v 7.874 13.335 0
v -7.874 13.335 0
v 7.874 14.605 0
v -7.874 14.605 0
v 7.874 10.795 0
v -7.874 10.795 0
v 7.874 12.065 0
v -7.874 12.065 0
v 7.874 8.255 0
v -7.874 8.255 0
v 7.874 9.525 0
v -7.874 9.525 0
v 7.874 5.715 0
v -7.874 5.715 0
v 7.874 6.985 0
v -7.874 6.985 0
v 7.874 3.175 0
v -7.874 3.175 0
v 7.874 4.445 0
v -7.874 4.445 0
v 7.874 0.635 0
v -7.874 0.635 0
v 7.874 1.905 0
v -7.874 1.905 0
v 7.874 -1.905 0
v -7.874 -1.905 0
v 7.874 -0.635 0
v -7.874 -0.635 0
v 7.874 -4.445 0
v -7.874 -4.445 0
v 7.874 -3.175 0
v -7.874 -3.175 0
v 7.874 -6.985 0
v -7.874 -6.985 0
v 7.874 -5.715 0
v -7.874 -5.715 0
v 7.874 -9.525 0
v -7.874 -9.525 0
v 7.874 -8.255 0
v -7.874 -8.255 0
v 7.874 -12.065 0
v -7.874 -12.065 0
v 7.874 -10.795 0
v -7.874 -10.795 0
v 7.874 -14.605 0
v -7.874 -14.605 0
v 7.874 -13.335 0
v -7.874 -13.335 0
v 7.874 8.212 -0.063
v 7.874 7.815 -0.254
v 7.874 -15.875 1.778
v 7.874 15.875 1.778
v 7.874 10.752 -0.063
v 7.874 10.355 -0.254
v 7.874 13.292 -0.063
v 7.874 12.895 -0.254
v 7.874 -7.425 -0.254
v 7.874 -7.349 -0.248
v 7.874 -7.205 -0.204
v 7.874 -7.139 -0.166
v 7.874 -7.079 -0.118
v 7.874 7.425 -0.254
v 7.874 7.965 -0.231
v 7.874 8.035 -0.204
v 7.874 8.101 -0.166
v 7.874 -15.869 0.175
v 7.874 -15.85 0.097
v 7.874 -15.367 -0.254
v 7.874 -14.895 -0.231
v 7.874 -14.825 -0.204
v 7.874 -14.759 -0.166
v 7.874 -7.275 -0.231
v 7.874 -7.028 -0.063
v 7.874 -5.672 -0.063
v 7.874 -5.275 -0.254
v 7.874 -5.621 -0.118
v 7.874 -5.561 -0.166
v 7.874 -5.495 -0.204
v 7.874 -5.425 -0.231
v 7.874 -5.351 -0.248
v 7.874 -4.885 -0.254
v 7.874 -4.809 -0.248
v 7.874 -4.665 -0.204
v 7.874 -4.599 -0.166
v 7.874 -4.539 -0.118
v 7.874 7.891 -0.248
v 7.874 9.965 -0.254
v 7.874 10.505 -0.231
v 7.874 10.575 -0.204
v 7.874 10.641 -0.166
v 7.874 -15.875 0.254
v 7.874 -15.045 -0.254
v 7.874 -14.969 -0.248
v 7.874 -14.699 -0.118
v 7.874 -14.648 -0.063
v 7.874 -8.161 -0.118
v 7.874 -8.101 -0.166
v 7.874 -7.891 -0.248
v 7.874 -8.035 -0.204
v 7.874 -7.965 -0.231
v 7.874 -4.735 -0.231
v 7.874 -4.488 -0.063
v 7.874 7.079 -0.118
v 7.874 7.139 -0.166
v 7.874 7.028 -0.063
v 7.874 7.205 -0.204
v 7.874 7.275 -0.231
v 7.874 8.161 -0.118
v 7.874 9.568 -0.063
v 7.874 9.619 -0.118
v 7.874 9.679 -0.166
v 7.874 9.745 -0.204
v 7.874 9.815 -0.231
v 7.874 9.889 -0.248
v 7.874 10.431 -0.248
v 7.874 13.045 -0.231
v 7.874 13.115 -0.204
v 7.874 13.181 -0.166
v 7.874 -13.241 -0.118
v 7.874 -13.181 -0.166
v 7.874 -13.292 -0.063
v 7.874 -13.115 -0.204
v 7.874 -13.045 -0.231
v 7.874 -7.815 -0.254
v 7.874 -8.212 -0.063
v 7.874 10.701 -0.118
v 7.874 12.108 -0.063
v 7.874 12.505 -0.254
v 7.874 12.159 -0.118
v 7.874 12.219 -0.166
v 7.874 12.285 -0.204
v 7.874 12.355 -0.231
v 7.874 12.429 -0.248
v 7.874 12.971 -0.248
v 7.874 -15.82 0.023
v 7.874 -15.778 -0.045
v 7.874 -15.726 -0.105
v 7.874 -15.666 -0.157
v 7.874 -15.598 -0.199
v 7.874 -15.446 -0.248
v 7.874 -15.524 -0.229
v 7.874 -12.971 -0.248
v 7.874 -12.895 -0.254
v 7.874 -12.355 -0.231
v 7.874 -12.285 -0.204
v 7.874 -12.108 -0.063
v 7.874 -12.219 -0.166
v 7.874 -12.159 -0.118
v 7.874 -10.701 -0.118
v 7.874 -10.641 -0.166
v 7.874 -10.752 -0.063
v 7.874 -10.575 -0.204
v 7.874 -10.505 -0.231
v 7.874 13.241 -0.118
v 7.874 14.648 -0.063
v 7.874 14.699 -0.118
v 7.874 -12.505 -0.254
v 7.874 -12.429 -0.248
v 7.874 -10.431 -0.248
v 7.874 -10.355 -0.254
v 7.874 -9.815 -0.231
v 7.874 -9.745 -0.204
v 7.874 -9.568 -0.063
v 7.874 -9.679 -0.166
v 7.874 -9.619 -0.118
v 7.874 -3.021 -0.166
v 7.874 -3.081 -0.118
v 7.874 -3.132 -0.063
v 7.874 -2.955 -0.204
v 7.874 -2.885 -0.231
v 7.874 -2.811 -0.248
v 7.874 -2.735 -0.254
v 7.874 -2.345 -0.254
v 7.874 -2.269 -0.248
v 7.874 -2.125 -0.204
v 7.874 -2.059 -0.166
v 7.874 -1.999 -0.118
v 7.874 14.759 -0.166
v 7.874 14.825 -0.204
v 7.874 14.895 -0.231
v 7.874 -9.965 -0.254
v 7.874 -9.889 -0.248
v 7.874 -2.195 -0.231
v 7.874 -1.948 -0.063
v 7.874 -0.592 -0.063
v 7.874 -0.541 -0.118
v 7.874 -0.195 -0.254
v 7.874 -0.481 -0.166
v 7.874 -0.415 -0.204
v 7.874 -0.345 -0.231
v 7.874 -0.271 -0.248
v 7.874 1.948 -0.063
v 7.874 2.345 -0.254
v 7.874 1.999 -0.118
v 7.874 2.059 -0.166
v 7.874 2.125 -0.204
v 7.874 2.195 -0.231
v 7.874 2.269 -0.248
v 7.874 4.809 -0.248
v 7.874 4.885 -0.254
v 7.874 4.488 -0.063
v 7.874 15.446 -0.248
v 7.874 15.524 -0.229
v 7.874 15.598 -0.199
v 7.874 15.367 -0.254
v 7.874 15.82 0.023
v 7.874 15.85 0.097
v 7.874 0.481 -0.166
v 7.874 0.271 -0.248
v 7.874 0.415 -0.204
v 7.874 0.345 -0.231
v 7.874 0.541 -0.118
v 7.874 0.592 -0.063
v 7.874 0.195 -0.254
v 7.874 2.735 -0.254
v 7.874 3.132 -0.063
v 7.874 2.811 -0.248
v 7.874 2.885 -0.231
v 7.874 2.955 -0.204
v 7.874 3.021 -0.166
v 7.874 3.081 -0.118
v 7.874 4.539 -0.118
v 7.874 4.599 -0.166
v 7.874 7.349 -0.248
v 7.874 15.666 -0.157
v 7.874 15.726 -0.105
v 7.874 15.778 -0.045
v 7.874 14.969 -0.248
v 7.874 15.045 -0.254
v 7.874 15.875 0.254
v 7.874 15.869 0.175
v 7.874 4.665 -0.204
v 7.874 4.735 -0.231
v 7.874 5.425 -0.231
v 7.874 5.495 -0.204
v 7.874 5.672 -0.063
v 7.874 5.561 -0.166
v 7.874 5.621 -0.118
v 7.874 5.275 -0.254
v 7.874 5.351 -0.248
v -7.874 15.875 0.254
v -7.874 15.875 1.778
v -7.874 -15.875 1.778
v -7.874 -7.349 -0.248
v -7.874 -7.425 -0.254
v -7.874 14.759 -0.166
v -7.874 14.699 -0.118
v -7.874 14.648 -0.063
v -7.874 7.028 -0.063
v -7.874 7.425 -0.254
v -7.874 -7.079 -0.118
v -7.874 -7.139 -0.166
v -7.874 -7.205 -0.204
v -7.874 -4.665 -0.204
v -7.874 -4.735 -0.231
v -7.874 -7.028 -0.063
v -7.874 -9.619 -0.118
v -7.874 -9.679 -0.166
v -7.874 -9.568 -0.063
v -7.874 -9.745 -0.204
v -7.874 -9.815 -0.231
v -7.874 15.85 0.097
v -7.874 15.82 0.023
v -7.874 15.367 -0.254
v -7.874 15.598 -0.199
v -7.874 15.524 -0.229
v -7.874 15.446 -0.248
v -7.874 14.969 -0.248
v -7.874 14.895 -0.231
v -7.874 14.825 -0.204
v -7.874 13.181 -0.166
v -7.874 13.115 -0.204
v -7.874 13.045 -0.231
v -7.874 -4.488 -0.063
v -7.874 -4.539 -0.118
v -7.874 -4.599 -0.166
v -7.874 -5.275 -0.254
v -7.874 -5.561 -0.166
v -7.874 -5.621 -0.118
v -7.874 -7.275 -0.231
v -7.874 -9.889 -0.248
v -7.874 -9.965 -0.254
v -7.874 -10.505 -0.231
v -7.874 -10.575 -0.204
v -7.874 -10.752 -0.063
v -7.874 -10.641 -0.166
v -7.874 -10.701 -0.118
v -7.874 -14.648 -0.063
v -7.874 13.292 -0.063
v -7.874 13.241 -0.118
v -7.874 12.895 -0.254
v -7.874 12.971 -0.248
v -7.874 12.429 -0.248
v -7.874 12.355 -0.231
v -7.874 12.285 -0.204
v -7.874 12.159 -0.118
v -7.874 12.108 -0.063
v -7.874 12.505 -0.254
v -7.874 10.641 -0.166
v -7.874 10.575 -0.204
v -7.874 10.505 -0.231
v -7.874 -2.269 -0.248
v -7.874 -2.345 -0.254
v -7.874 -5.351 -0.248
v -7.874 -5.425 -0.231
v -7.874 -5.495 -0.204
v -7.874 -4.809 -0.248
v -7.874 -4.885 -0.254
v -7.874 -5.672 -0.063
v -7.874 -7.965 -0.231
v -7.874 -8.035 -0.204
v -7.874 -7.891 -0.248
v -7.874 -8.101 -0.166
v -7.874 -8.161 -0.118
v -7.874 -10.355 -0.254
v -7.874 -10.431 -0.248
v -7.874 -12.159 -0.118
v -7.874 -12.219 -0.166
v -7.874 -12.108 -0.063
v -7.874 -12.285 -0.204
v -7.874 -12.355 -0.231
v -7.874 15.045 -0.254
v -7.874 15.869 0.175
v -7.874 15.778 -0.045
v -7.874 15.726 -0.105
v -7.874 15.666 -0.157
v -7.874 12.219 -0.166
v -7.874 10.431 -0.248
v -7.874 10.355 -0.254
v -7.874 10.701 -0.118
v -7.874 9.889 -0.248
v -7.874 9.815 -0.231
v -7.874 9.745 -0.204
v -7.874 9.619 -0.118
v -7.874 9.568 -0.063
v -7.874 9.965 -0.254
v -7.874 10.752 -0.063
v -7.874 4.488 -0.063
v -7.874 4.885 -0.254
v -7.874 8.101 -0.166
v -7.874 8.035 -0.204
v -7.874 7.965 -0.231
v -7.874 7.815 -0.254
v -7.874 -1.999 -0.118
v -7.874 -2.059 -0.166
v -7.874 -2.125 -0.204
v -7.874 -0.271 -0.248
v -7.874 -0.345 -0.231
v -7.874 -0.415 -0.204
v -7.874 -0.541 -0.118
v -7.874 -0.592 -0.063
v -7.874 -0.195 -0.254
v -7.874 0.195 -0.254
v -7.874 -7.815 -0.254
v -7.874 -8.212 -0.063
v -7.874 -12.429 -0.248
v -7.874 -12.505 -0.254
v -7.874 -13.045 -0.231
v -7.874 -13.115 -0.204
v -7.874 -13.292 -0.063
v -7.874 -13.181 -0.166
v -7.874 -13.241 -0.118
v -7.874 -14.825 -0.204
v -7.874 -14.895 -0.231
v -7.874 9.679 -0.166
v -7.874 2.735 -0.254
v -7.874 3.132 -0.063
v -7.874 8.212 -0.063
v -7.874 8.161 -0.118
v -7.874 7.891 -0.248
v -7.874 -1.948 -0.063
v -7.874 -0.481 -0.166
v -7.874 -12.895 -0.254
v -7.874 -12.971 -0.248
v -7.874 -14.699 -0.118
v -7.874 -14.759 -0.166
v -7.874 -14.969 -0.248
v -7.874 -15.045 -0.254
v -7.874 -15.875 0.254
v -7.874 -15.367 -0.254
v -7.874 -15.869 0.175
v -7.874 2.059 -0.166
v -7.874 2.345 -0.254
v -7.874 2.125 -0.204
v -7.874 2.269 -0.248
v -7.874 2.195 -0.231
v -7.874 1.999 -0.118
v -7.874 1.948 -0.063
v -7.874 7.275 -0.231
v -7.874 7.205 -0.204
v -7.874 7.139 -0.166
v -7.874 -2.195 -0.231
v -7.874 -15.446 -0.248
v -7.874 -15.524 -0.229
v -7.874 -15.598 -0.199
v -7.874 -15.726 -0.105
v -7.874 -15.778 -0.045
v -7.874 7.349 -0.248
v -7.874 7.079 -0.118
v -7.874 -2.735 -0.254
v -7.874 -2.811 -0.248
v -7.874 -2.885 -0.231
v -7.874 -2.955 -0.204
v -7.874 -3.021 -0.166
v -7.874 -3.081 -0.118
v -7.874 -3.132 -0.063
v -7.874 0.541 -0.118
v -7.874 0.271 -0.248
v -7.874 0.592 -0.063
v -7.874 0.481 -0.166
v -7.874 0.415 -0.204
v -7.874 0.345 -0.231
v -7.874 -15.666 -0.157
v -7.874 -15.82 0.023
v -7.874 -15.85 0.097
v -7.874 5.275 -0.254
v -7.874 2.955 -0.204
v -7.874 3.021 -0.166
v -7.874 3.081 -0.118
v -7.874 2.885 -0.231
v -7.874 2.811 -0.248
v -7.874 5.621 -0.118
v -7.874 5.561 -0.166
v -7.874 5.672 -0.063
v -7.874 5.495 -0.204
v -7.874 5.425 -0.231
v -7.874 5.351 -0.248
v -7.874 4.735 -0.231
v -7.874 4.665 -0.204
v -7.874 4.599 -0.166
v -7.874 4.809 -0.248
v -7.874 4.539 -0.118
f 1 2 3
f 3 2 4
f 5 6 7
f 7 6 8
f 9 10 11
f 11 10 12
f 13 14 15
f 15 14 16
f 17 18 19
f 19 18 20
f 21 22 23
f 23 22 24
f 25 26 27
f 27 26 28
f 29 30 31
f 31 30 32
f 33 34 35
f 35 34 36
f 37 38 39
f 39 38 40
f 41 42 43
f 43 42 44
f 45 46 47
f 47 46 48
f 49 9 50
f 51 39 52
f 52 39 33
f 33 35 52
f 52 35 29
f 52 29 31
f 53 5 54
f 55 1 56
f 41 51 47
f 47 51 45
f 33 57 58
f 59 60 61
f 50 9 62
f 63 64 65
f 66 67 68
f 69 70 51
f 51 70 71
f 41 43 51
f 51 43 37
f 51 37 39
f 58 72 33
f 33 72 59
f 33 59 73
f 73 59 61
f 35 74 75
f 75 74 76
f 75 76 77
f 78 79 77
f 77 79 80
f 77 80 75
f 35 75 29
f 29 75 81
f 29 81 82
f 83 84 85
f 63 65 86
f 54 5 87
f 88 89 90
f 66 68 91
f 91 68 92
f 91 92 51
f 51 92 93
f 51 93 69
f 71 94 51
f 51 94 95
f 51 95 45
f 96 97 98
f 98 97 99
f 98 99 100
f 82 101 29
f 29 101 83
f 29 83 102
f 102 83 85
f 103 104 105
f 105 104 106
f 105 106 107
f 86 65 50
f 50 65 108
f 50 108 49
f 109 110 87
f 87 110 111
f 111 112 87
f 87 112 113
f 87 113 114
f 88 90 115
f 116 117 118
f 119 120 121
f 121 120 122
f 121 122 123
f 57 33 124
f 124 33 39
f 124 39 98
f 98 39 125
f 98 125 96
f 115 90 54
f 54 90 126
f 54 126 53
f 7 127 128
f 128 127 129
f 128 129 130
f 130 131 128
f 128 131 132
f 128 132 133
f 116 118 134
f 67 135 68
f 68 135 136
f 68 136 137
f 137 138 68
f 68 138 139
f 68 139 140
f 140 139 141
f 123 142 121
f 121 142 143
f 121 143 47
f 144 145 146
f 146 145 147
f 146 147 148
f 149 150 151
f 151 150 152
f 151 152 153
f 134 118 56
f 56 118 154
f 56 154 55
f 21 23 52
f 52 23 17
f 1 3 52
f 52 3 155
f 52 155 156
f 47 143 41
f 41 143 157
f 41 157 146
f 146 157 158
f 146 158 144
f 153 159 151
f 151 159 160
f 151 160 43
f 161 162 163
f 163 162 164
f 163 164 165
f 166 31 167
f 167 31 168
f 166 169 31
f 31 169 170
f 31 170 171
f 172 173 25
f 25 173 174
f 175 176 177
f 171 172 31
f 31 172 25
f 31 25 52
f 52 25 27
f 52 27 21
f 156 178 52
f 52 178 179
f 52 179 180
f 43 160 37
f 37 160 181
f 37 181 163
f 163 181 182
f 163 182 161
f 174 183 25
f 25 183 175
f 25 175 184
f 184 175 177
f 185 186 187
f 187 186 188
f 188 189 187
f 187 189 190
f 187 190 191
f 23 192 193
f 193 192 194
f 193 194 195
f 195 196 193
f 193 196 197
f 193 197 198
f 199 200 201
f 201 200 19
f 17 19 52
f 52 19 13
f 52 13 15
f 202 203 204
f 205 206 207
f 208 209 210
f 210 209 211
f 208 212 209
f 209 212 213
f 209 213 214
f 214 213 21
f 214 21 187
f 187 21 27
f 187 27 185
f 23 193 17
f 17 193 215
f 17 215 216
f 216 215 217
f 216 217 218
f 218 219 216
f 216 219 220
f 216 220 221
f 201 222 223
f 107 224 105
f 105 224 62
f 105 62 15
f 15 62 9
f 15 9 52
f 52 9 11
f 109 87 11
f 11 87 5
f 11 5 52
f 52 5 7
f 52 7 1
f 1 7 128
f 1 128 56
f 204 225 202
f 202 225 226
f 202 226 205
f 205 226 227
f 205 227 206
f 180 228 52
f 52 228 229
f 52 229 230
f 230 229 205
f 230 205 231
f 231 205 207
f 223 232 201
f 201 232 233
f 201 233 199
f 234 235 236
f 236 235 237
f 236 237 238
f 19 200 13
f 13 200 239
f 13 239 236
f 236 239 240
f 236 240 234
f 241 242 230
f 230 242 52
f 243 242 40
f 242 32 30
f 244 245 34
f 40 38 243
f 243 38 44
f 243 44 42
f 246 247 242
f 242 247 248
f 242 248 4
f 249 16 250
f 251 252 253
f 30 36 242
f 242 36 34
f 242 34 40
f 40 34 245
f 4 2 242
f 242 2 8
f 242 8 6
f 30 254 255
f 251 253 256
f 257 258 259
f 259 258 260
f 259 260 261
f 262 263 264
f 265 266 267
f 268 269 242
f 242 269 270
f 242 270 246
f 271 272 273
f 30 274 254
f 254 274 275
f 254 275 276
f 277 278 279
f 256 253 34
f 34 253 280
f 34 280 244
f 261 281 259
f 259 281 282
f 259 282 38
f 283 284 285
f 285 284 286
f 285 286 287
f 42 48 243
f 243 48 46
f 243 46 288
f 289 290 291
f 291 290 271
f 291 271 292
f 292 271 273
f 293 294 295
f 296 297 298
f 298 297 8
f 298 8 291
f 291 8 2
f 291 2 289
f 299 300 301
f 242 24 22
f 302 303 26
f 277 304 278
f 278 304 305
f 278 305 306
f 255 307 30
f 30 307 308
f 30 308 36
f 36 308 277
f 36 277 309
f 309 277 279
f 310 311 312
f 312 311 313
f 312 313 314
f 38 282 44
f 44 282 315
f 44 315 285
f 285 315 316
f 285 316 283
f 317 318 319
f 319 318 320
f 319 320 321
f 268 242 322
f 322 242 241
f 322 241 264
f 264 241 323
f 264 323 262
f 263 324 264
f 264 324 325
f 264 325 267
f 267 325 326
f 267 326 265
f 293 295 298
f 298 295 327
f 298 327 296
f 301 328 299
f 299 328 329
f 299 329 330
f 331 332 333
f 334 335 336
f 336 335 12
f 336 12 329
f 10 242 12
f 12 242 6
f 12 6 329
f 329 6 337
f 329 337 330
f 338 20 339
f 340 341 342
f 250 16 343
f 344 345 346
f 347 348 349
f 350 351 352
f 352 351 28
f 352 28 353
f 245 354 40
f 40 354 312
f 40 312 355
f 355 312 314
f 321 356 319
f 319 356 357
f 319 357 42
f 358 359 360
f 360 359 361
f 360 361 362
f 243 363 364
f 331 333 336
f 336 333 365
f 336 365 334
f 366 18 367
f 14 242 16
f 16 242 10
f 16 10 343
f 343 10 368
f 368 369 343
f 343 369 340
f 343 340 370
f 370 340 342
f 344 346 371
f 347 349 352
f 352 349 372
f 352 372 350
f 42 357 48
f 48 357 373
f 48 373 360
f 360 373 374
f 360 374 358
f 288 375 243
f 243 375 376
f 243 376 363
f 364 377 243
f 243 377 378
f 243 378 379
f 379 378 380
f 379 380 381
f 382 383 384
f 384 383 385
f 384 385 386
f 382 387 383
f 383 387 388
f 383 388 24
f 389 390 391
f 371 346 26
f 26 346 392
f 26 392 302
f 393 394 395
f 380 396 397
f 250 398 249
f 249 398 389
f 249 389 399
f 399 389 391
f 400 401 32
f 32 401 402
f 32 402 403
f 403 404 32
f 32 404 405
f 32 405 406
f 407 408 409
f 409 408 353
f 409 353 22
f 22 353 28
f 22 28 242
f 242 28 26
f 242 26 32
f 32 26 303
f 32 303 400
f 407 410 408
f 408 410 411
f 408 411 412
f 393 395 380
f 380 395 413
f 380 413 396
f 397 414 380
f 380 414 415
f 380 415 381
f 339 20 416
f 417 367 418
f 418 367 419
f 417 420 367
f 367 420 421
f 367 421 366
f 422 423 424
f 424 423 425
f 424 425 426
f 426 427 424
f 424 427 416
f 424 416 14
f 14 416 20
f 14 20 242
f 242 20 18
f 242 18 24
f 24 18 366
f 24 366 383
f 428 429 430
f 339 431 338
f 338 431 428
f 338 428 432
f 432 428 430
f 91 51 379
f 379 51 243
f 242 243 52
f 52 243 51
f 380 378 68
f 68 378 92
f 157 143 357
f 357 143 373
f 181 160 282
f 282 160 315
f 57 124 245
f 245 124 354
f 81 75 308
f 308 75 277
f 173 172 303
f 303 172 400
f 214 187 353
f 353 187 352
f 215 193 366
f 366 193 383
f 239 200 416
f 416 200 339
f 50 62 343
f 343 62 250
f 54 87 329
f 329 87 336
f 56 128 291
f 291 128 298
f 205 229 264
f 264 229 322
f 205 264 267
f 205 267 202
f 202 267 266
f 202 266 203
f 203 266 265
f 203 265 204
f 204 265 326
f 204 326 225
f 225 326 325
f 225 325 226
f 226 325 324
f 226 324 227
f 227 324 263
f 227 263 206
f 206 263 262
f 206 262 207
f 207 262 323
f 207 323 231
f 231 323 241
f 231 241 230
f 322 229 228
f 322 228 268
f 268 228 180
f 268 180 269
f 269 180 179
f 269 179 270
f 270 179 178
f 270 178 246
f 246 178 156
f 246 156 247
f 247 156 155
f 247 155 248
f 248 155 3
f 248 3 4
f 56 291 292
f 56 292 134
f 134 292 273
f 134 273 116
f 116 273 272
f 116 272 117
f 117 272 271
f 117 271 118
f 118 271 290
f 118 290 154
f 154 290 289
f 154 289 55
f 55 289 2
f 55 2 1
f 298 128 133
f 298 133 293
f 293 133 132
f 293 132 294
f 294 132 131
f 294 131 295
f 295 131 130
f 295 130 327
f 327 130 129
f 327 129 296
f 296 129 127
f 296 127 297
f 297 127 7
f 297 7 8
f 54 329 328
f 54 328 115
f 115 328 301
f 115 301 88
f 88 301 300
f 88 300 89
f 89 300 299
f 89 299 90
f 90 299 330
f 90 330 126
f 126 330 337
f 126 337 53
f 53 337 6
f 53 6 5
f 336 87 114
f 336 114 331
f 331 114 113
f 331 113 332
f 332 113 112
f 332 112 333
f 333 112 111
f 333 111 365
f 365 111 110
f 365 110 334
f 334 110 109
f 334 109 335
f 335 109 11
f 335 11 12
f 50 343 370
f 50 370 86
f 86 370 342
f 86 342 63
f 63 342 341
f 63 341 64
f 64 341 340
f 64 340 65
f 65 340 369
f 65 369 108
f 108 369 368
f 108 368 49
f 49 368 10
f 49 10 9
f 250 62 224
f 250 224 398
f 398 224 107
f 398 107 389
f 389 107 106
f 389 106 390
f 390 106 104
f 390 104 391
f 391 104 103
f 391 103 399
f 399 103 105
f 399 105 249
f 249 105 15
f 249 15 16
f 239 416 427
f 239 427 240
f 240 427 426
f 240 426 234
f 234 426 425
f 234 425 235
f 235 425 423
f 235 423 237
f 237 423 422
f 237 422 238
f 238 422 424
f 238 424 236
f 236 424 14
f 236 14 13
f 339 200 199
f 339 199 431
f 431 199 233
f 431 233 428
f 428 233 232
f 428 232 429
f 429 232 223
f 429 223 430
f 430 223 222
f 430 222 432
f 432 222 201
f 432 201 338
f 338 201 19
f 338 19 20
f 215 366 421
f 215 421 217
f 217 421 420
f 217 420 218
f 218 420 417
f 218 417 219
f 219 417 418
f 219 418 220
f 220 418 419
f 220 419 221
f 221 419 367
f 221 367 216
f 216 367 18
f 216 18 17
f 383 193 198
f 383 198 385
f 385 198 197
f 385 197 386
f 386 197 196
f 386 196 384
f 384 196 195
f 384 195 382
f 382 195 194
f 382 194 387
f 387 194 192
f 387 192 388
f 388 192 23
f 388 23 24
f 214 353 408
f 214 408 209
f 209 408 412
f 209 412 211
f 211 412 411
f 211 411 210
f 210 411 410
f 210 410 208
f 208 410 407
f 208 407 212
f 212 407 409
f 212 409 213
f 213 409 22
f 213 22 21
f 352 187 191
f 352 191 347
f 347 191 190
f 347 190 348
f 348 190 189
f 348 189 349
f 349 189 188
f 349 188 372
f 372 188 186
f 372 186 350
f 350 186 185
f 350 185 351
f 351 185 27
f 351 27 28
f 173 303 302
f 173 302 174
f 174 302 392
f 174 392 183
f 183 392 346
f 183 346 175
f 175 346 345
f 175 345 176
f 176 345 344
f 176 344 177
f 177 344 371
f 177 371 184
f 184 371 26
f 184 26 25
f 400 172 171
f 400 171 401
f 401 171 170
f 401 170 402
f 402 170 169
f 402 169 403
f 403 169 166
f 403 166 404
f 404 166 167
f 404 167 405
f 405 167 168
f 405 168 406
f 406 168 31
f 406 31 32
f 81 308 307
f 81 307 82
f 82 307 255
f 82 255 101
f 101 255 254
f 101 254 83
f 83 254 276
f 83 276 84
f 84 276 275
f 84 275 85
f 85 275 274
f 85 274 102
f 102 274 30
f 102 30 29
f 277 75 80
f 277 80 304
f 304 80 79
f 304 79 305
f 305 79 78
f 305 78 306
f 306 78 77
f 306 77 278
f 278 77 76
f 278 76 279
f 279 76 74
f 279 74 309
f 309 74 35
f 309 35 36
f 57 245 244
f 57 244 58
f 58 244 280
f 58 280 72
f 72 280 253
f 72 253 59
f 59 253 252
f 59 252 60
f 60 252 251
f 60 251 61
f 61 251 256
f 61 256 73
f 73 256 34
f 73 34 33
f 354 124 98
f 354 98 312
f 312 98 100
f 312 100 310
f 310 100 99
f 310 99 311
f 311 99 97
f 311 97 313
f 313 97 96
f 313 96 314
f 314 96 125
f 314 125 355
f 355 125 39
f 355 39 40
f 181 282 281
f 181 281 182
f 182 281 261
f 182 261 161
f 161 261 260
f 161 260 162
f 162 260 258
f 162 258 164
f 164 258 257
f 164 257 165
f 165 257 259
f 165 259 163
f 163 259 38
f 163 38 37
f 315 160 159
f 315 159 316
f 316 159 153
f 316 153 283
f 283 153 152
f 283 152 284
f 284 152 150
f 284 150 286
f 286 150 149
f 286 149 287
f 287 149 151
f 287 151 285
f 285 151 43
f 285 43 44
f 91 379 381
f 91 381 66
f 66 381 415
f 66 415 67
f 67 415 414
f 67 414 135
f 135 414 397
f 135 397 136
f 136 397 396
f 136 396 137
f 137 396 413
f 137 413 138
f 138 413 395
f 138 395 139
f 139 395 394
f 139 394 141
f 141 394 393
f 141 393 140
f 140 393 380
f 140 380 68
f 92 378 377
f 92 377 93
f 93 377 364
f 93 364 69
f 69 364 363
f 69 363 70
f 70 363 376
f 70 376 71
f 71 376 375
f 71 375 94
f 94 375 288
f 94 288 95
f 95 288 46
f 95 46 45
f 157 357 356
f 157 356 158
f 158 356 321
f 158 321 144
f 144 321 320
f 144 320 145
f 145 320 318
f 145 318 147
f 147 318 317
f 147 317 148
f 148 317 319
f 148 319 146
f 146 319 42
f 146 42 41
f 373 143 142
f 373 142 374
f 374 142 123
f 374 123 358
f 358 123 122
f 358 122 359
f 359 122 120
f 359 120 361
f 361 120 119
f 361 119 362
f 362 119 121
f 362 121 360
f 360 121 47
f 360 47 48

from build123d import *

# Parameters (mm, degrees)
SKETCH1_W           = 15.748
SKETCH1_H           = 31.75
BOSS_EXTRUDE1_DEPTH = 1.778
SKETCH2_W           = 15.748
SKETCH2_H           = 1.27
BOSS_EXTRUDE2_DEPTH = 0.254
FILLET1_R           = 0.508


with BuildPart() as part:
    # Sketch1 → Boss-Extrude1 (new body)
    with BuildSketch(Plane.XY):
        Rectangle(SKETCH1_W, SKETCH1_H)
    extrude(amount=BOSS_EXTRUDE1_DEPTH)

    # Sketch2 → Boss-Extrude2 (add)
    with BuildSketch(Plane(origin=(0, 0, 0), x_dir=(-1, 0, 0), z_dir=(0, 0, -1))):
        with Locations((0, -15.24)):
            Rectangle(SKETCH2_W, SKETCH2_H)
        with Locations((0, -12.7)):
            Rectangle(SKETCH2_W, SKETCH2_H)
        with Locations((0, -10.16)):
            Rectangle(SKETCH2_W, SKETCH2_H)
        with Locations((0, -7.62)):
            Rectangle(SKETCH2_W, SKETCH2_H)
        with Locations((0, -5.08)):
            Rectangle(SKETCH2_W, SKETCH2_H)
        with Locations((0, -2.54)):
            Rectangle(SKETCH2_W, SKETCH2_H)
        Rectangle(SKETCH2_W, SKETCH2_H)
        with Locations((0, 2.54)):
            Rectangle(SKETCH2_W, SKETCH2_H)
        with Locations((0, 5.08)):
            Rectangle(SKETCH2_W, SKETCH2_H)
        with Locations((0, 7.62)):
            Rectangle(SKETCH2_W, SKETCH2_H)
        with Locations((0, 10.16)):
            Rectangle(SKETCH2_W, SKETCH2_H)
        with Locations((0, 12.7)):
            Rectangle(SKETCH2_W, SKETCH2_H)
        with Locations((0, 15.24)):
            Rectangle(SKETCH2_W, SKETCH2_H)
    extrude(amount=BOSS_EXTRUDE2_DEPTH)

    # Fillet1
    # the kernel refuses this fillet: 0.508 mm, written as the material it takes off along each edge
    with BuildSketch(Plane(origin=(9.144, 15.875, -0.254), x_dir=(0, 0, 1), z_dir=(-1, 0, 0))) as fillet1_piece_1:
        with BuildLine():
            CenterArc((FILLET1_R, -FILLET1_R), FILLET1_R, 90, 90)
            Line((0, -FILLET1_R), (-FILLET1_R * 0.02, -FILLET1_R))
            Line((-FILLET1_R * 0.02, -FILLET1_R), (-FILLET1_R * 0.02, FILLET1_R * 0.02))
            Line((-FILLET1_R * 0.02, FILLET1_R * 0.02), (FILLET1_R, FILLET1_R * 0.02))
            Line((FILLET1_R, FILLET1_R * 0.02), (FILLET1_R, 0))
        make_face()
    extrude(amount=18.288, mode=Mode.SUBTRACT)
    with BuildSketch(Plane(origin=(-8.973852263, 14.605, -0.254), x_dir=(0, 0, 1), z_dir=(1, 0, 0)), Plane(origin=(-8.973852263, 12.065, -0.254), x_dir=(0, 0, 1), z_dir=(1, 0, 0)), Plane(origin=(-8.973852263, 9.525, -0.254), x_dir=(0, 0, 1), z_dir=(1, 0, 0)), Plane(origin=(-8.973852263, 6.985, -0.254), x_dir=(0, 0, 1), z_dir=(1, 0, 0)), Plane(origin=(-8.973852263, 4.445, -0.254), x_dir=(0, 0, 1), z_dir=(1, 0, 0)), Plane(origin=(-8.973852263, 1.905, -0.254), x_dir=(0, 0, 1), z_dir=(1, 0, 0)), Plane(origin=(-8.973852263, -0.635, -0.254), x_dir=(0, 0, 1), z_dir=(1, 0, 0)), Plane(origin=(-8.973852263, -3.175, -0.254), x_dir=(0, 0, 1), z_dir=(1, 0, 0)), Plane(origin=(-8.973852263, -5.715, -0.254), x_dir=(0, 0, 1), z_dir=(1, 0, 0)), Plane(origin=(-8.973852263, -8.255, -0.254), x_dir=(0, 0, 1), z_dir=(1, 0, 0)), Plane(origin=(-8.973852263, -10.795, -0.254), x_dir=(0, 0, 1), z_dir=(1, 0, 0)), Plane(origin=(-8.973852263, -13.335, -0.254), x_dir=(0, 0, 1), z_dir=(1, 0, 0))) as fillet1_piece_2:
        with BuildLine():
            CenterArc((0.508, -0.439940905), FILLET1_R, 120, 60)
            Line((0, -0.439940905), (-0.01016, -0.439940905))
            Line((-0.01016, -0.439940905), (-0.01016, 0))
            Line((-0.01016, 0), (0, 0.01016))
            ThreePointArc((0, 0.01016), (0.127, 0.01016), (0.24892, 0.008798818))
            Line((0.24892, 0.008798818), (0.254, 0))
        make_face()
    extrude(amount=17.947704526, mode=Mode.SUBTRACT)
    with BuildSketch(Plane(origin=(8.973852263, 13.335, -0.254), x_dir=(0, -1, 0), z_dir=(-1, 0, 0)), Plane(origin=(8.973852263, 10.795, -0.254), x_dir=(0, -1, 0), z_dir=(-1, 0, 0)), Plane(origin=(8.973852263, 8.255, -0.254), x_dir=(0, -1, 0), z_dir=(-1, 0, 0)), Plane(origin=(8.973852263, 5.715, -0.254), x_dir=(0, -1, 0), z_dir=(-1, 0, 0)), Plane(origin=(8.973852263, 3.175, -0.254), x_dir=(0, -1, 0), z_dir=(-1, 0, 0)), Plane(origin=(8.973852263, 0.635, -0.254), x_dir=(0, -1, 0), z_dir=(-1, 0, 0)), Plane(origin=(8.973852263, -1.905, -0.254), x_dir=(0, -1, 0), z_dir=(-1, 0, 0)), Plane(origin=(8.973852263, -4.445, -0.254), x_dir=(0, -1, 0), z_dir=(-1, 0, 0)), Plane(origin=(8.973852263, -6.985, -0.254), x_dir=(0, -1, 0), z_dir=(-1, 0, 0)), Plane(origin=(8.973852263, -9.525, -0.254), x_dir=(0, -1, 0), z_dir=(-1, 0, 0)), Plane(origin=(8.973852263, -12.065, -0.254), x_dir=(0, -1, 0), z_dir=(-1, 0, 0))) as fillet1_piece_3:
        with BuildLine():
            CenterArc((0.439940905, 0.508), FILLET1_R, 210, 60)
            Line((0, 0.254), (-0.008798818, 0.24892))
            ThreePointArc((-0.008798818, 0.24892), (-0.01016, 0.127), (-0.01016, 0))
            Line((-0.01016, 0), (0, -0.01016))
            Line((0, -0.01016), (0.439940905, -0.01016))
            Line((0.439940905, -0.01016), (0.439940905, 0))
        make_face()
    extrude(amount=17.947704526, mode=Mode.SUBTRACT)
    with BuildSketch(Plane(origin=(9.144, -15.875, -0.254), x_dir=(0, 0, 1), z_dir=(-1, 0, 0))) as fillet1_piece_4:
        with BuildLine():
            CenterArc((FILLET1_R, FILLET1_R), FILLET1_R, 180, 90)
            Line((0, FILLET1_R), (-FILLET1_R * 0.02, FILLET1_R))
            Line((-FILLET1_R * 0.02, FILLET1_R), (-FILLET1_R * 0.02, -FILLET1_R * 0.02))
            Line((-FILLET1_R * 0.02, -FILLET1_R * 0.02), (FILLET1_R, -FILLET1_R * 0.02))
            Line((FILLET1_R, -FILLET1_R * 0.02), (FILLET1_R, 0))
        make_face()
    extrude(amount=18.288, mode=Mode.SUBTRACT)
    with BuildSketch(Plane(origin=(-8.973852263, -14.605, -0.254), x_dir=(0, -1, 0), z_dir=(1, 0, 0))) as fillet1_piece_5:
        with BuildLine():
            CenterArc((0.439940905, -0.508), FILLET1_R, 90, 60)
            Line((0, -0.254), (-0.008798818, -0.24892))
            ThreePointArc((-0.008798818, -0.24892), (-0.01016, -0.127), (-0.01016, 0))
            Line((-0.01016, 0), (0, 0.01016))
            Line((0, 0.01016), (0.439940905, 0.01016))
            Line((0.439940905, 0.01016), (0.439940905, 0))
        make_face()
    extrude(amount=17.947704526, mode=Mode.SUBTRACT)


solid = part.part
